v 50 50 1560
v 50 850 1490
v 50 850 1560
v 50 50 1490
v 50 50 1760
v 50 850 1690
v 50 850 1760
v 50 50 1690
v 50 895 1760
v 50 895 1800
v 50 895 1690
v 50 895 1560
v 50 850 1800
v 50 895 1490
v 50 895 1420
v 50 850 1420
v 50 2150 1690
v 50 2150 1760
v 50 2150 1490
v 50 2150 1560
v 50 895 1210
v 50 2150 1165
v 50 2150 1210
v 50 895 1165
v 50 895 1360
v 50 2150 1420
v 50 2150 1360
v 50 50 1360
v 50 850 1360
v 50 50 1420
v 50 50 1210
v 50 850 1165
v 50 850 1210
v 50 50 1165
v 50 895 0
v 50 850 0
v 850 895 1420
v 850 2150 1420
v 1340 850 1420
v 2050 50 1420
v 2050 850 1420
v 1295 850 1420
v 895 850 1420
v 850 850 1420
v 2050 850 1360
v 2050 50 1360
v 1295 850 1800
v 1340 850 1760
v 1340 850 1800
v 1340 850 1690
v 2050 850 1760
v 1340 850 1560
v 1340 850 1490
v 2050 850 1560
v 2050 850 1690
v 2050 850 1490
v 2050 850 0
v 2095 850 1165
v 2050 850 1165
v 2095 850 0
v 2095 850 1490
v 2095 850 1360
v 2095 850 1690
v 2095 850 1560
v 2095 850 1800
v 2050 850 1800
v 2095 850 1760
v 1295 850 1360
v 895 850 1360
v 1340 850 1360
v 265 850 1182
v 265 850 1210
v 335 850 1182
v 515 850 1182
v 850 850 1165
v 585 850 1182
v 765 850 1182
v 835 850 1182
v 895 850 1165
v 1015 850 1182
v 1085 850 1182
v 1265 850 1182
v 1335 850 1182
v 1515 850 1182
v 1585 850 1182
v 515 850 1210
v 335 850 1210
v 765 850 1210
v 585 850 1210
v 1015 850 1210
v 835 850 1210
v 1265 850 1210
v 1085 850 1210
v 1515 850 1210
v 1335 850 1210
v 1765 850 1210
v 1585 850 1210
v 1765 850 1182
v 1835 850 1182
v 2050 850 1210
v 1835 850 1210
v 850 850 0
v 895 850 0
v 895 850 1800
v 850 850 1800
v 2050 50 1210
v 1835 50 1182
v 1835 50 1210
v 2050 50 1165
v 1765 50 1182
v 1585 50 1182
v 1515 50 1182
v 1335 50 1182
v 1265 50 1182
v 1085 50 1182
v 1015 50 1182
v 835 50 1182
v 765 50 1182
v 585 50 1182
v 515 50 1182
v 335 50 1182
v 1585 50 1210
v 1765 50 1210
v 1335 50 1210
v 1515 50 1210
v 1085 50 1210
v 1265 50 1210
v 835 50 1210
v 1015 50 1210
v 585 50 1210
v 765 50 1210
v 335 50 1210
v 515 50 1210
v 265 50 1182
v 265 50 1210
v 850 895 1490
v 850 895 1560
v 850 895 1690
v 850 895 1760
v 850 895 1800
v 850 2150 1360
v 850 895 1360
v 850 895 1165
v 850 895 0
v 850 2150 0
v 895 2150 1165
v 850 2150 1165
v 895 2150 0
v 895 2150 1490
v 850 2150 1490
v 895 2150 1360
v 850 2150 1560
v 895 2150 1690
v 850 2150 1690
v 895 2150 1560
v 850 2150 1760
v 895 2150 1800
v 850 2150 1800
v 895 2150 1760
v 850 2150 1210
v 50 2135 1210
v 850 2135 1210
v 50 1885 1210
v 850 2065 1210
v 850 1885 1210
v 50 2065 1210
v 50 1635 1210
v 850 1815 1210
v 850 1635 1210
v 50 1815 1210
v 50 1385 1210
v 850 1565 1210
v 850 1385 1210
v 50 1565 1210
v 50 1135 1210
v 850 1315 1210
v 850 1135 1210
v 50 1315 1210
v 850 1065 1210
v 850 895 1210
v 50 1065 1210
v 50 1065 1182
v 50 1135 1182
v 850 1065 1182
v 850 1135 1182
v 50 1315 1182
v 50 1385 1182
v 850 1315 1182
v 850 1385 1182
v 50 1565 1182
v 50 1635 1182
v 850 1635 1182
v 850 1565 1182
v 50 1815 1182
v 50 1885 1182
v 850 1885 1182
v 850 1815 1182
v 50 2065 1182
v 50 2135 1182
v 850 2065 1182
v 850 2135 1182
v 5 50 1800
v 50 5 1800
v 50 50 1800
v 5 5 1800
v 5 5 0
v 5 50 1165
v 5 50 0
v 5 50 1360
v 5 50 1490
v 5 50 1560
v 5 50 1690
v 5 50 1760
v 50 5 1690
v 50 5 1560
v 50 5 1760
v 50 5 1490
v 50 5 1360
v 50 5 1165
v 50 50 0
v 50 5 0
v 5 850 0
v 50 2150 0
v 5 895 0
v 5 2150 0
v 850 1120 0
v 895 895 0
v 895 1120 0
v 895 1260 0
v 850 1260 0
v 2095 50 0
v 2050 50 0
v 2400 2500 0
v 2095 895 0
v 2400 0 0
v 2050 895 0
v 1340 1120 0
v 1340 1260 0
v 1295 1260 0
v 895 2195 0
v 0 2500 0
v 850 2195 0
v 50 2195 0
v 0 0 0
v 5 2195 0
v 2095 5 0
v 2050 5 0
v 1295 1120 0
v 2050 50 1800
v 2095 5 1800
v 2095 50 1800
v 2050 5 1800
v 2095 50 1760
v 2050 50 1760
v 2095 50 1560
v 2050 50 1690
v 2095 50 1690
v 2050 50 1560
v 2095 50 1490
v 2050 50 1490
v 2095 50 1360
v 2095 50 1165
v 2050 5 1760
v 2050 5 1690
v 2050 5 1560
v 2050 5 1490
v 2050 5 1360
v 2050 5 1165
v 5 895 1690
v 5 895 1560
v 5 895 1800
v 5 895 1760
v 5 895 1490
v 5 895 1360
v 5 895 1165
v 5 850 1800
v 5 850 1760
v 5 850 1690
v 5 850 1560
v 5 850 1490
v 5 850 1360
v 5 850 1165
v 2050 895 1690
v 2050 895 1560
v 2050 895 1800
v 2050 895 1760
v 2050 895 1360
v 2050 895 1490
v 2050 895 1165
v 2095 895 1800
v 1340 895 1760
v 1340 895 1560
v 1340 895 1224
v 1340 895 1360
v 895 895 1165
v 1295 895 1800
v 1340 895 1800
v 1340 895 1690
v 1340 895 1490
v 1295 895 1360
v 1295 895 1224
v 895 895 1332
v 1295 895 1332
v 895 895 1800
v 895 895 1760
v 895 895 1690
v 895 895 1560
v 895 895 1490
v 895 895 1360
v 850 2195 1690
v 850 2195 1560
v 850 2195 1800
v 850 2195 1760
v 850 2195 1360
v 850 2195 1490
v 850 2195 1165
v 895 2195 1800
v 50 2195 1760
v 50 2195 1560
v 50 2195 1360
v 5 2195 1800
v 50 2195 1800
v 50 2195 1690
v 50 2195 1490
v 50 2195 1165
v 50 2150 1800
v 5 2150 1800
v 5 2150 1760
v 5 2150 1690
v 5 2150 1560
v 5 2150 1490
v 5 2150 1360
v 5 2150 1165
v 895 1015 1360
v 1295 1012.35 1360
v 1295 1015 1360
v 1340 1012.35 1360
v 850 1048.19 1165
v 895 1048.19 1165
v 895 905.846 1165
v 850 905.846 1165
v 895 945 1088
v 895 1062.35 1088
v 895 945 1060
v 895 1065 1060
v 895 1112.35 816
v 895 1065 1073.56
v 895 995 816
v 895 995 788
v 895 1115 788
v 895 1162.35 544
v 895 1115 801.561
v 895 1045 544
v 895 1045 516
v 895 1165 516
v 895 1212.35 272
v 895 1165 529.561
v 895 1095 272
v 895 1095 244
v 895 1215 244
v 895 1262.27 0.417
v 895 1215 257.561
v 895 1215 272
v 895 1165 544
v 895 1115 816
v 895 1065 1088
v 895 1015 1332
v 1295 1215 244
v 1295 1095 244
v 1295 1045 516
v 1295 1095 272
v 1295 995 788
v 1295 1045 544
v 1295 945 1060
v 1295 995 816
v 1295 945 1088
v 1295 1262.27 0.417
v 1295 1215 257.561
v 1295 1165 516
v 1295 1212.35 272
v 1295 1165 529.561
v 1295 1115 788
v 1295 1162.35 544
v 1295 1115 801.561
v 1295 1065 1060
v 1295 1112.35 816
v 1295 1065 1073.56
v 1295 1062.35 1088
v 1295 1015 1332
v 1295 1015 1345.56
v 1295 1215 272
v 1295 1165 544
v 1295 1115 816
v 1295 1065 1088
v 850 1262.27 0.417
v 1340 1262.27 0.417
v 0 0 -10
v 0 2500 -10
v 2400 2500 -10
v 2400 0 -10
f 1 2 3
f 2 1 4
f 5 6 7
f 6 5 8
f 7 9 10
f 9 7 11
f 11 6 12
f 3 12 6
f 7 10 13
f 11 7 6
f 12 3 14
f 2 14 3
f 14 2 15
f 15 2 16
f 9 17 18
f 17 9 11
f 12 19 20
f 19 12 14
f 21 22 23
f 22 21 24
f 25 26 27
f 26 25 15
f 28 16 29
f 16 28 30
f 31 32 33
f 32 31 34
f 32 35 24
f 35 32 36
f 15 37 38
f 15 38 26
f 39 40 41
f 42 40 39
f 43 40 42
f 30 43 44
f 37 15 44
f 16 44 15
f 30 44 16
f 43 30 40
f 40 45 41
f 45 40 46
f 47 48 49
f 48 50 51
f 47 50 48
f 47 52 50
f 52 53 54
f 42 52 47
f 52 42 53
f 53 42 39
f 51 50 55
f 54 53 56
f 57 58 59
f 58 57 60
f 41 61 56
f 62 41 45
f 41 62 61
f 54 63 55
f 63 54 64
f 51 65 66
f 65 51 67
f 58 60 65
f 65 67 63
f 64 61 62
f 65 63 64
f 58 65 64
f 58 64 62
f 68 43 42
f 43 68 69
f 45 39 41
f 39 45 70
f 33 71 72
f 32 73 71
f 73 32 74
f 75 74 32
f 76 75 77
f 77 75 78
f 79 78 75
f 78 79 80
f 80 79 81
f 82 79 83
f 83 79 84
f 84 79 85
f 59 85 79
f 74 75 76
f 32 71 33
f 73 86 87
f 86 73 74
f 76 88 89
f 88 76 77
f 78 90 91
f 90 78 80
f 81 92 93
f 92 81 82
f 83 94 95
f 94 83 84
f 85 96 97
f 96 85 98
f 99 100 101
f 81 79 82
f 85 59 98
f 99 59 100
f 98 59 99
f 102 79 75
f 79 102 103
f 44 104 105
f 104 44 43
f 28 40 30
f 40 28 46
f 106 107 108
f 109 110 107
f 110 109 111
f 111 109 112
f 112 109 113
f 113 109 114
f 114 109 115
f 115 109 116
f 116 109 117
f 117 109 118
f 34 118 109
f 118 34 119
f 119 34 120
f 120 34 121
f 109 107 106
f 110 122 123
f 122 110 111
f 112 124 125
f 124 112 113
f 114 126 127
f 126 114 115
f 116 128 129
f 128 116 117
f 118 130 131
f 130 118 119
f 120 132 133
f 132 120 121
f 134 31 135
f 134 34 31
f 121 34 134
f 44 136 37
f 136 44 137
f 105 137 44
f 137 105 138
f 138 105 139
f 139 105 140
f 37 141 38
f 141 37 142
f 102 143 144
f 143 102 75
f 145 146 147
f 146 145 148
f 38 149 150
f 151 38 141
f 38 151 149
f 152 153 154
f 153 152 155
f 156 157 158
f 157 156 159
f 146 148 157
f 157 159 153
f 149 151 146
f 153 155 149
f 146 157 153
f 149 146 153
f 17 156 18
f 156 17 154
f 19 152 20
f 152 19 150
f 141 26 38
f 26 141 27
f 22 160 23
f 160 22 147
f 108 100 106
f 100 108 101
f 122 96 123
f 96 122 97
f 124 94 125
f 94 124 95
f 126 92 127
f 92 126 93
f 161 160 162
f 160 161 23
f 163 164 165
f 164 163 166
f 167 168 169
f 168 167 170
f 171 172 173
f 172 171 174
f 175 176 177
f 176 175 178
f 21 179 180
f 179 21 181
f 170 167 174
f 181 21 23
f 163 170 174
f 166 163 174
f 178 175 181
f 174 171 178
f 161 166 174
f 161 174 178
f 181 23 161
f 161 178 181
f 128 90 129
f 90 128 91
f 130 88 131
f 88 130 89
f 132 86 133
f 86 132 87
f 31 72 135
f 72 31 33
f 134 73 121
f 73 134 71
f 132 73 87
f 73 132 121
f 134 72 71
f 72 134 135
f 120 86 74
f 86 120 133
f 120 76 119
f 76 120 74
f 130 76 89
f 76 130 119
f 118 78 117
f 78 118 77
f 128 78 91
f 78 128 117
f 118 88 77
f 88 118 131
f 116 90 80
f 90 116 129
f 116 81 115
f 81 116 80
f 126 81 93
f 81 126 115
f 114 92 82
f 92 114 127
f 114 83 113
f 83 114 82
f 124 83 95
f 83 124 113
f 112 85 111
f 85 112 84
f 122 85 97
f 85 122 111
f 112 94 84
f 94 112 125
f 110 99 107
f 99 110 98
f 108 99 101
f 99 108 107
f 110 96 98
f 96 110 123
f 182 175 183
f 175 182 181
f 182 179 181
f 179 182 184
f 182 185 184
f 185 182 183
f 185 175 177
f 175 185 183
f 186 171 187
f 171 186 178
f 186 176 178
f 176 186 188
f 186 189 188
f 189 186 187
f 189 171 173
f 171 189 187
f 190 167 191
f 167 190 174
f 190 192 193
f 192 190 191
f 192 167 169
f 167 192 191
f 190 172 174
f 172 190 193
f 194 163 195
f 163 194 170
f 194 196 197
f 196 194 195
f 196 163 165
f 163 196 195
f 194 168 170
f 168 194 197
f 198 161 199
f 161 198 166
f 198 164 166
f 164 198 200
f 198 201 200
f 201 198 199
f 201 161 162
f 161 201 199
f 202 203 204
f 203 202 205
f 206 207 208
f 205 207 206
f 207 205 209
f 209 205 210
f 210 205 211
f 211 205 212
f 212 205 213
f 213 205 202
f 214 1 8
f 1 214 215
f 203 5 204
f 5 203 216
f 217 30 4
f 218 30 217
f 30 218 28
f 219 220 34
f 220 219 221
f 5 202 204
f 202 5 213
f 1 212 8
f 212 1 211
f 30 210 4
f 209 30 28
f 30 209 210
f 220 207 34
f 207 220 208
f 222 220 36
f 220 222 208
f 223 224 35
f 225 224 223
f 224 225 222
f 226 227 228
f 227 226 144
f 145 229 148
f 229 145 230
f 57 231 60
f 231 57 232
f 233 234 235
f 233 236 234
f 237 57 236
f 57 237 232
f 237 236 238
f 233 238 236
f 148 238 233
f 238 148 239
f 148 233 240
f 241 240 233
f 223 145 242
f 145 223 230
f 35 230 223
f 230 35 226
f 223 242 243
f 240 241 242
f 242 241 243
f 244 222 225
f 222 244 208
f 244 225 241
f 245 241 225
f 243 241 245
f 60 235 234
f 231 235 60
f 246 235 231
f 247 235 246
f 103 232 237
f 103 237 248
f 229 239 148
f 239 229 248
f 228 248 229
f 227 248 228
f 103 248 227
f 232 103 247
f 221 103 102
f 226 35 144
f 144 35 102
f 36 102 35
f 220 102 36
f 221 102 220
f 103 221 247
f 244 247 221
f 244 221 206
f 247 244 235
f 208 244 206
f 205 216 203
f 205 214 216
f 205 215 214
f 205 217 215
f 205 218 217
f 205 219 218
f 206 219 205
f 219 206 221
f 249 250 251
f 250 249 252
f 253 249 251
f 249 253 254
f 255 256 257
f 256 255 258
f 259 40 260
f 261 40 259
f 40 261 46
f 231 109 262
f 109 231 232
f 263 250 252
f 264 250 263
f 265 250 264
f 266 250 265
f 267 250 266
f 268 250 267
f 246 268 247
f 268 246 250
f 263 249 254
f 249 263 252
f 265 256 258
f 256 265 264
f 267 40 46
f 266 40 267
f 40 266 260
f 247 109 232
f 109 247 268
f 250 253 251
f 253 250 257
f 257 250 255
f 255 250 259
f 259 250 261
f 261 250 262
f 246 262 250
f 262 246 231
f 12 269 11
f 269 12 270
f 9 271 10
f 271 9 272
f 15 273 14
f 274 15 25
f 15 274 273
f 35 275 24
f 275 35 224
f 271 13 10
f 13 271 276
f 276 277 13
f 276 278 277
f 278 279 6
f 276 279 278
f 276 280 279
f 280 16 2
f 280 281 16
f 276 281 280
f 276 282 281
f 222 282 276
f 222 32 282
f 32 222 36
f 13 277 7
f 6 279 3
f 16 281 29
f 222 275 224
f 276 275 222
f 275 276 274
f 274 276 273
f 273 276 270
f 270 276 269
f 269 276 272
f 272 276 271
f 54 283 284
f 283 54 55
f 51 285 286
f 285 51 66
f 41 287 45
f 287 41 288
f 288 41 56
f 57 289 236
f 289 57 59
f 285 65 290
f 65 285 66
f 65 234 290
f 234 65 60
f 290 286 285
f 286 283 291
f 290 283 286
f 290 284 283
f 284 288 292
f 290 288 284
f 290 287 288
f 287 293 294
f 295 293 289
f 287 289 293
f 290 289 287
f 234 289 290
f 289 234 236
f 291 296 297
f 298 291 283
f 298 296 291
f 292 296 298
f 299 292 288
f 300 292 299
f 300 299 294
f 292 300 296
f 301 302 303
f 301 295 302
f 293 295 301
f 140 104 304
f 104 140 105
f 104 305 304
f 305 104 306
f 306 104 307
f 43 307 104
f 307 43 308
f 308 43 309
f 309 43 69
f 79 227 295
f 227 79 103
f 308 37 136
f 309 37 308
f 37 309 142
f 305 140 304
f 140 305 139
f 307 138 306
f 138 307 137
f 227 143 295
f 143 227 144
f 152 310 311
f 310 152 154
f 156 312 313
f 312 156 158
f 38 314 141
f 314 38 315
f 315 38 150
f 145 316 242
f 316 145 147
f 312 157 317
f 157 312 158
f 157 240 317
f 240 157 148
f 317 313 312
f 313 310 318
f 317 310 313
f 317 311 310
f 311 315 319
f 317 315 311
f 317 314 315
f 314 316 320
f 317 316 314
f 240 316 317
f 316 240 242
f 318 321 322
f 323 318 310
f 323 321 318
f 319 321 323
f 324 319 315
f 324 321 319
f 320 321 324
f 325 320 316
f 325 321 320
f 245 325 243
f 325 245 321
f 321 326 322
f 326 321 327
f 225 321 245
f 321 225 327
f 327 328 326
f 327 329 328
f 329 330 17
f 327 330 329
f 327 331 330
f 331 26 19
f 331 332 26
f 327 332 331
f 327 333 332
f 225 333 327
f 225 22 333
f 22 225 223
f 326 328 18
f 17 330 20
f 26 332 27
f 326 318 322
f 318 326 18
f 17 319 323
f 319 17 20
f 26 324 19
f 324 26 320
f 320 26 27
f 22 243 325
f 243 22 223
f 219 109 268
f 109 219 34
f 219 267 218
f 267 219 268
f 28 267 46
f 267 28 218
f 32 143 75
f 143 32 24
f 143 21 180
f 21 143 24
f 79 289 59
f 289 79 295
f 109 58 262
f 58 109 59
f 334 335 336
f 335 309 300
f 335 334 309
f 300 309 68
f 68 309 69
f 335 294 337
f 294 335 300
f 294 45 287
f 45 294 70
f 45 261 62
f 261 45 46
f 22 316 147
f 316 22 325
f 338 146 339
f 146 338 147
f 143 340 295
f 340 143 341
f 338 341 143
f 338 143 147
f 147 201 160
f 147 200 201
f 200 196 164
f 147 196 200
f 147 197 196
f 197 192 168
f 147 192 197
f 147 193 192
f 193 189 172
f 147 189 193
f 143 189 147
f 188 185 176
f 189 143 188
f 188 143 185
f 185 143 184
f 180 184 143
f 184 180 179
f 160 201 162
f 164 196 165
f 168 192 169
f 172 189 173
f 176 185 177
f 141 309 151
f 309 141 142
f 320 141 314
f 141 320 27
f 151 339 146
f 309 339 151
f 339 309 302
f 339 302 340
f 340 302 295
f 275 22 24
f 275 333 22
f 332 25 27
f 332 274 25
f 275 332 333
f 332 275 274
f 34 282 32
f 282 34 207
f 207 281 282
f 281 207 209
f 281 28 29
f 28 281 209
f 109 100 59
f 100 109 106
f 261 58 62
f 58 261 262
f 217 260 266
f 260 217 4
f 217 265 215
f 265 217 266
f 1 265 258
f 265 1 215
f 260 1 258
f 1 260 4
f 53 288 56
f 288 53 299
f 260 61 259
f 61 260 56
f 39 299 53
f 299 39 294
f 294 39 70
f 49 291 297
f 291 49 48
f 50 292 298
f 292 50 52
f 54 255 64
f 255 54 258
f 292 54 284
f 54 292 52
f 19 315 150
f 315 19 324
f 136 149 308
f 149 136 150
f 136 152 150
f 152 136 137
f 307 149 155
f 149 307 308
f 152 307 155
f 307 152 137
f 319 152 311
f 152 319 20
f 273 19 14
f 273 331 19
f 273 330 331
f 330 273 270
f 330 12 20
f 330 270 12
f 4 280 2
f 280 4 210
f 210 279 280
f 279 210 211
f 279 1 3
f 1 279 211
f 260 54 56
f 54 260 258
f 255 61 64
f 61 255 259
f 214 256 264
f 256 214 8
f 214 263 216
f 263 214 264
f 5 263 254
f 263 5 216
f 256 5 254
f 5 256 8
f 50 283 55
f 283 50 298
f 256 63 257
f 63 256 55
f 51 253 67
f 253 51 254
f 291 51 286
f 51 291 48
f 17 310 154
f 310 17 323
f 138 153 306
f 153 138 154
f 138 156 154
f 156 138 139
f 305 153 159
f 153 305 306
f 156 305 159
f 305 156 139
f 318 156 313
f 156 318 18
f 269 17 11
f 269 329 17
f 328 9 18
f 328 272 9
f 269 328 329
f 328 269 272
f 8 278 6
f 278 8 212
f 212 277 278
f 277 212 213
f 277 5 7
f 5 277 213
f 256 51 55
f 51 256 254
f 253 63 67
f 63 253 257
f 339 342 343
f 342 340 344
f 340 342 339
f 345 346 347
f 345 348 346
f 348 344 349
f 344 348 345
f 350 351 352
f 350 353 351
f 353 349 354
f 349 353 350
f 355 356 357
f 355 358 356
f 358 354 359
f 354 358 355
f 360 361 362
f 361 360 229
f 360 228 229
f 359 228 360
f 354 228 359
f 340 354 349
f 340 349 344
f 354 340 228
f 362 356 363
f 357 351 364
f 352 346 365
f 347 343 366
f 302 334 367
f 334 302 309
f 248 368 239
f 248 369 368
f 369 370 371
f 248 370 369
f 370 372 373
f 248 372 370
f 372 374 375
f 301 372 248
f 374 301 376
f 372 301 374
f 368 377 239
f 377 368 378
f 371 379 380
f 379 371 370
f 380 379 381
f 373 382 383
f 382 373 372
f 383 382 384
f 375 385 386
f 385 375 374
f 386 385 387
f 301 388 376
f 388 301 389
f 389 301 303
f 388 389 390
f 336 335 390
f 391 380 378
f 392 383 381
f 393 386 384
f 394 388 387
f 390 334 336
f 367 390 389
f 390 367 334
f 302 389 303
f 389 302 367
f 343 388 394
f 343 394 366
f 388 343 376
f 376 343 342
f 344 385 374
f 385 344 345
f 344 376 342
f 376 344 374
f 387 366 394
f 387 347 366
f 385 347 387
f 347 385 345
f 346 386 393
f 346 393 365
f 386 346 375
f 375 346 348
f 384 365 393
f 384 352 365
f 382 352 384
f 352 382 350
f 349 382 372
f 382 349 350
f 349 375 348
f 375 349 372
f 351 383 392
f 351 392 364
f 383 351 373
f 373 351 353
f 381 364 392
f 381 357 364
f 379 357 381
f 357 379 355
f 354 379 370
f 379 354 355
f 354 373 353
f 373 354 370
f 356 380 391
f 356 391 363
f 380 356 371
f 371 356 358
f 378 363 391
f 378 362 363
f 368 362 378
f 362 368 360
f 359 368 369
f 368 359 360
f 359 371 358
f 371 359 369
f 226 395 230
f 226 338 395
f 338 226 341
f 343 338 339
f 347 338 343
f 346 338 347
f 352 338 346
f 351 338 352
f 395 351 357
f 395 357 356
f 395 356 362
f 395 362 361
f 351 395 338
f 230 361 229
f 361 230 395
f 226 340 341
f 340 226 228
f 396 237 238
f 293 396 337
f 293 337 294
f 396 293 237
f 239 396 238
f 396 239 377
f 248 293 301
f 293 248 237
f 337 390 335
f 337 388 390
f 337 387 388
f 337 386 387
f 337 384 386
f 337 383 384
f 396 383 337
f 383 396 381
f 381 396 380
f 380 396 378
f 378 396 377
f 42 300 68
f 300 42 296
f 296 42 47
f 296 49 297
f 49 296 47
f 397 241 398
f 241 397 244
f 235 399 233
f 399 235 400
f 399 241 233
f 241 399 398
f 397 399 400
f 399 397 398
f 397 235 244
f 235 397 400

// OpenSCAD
vst = 45; // vertical support thickness
hst = 45; // horizontal support thickness
bh = 1300; // base height
bhl = 1300; // base height Laura
rh = 1800; // rail height
ew = 400; // entrance width
mid = 60; // mattress insert depth
th = bh+500; // top height

module room_floor() {
    translate([0, 0, -10])
    cube([2400, 2500, 10]);
}

module room_back_wall() {
    cube([0.1, 2500, 2500]);
}

module room_right_wall() {
    cube([2400, 0.1, 2500]);
}

module room_door() {
    translate([1700, 2500, 0]) {
        intersection() {
            cylinder(h = 2000, r1 = 800, r2 = 800);
            rotate([0, 0, 180])
            cube([800, 800, 2000]);
        }
    }
}

module room_window_threshold() {
    translate([2200, 600, 800]) {
        cube([200, 1400, 28]);
    }
}

module vertical_support() {
    cube([vst, vst, th]);
}

module horizontal_support(l) {
    translate([0, 0, mid])
    mirror([0,0,1])
    cube([l, hst, 195]);
}

module rail(l) {
    translate([0, 0, 60])
    mirror([0,0,1])
    cube([l, hst, 70]);
}

module mattress_sara() {
    cube([2000, 800, 120]);
}

module slats_sara() {
    cube([2000, 800, 90]);
}

module slats_support(l) {
    translate([0, -35, -28])
    cube([l, 70, 28]);
}

module mattress_laura() {
    translate([0,-(350+150),0])
    cube([800, 1300+350+150, 120]);
}

module slats_laura() {
    translate([0,-(350+150),0])
    cube([800, 1300+350+150, 90]);
}

module bed() {
    translate([50, 50, 0]) {
        color("black")
        translate([0, 800, bhl])
        cube([800, 5, mid+50]);

        color("white") {
            translate([0, 0, bh]) {
                mattress_sara();
            }

            translate([0, 800, bhl]) {
                mattress_laura();
            }
        }

        color("brown") {
            translate([0, 0, bh-90]) {
                slats_sara();

                for (x=[250, 500, 750, 1000, 1250, 1500, 1750])
                translate([x, 0, 0])
                rotate([0, 0, 90])
                slats_support(800);
            }

            translate([0, 800, bhl-90]) {
                slats_laura();

                rotate([0, 0, 90])
                for (x=[250, 500, 750, 1000, 1250])
                translate([x, -800, 0])
                rotate([0, 0, 90])
                slats_support(800);
            }
        }

        color("brown") { 
            translate([0, 0, 0])
            rotate([0,0,180])
            vertical_support();
            
            translate([2000, 0, 0])
            rotate([0,0,-90])
            vertical_support();
            
            translate([0, 800, 0])
            rotate([0,0,90])
            vertical_support();
            
            translate([2000, 800, 0])
            rotate([0,0,0])
            vertical_support();
            
            translate([800, 800, 0])
            rotate([0,0,0])
            vertical_support();

            translate([800, 800+1300, 0])
            rotate([0,0,0])
            vertical_support();

            translate([0, 800+1300, 0])
            rotate([0,0,90])
            vertical_support();
        }
        
        color("RosyBrown") {
            mirror([0,1,0])
            translate([0, 0, bh])
            horizontal_support(2000);
            
            translate([0, 800, bh])
            horizontal_support(800);

            translate([800+vst, 800, bh])
            horizontal_support(2000-800-vst);

            translate([800, 800+vst, bhl])
            mirror([1,0,0])
            rotate([0,0,90])
            horizontal_support(1300-vst);
            
            translate([0, 800+vst, bhl])
            mirror([0,0,0])
            rotate([0,0,90])
            horizontal_support(1300-vst);
            
            translate([0, 0, bh])
            mirror([0,0,0])
            rotate([0,0,90])
            horizontal_support(800);
            
            translate([2000, 0, bh])
            mirror([1,0,0])
            rotate([0,0,90])
            horizontal_support(800);

            translate([0, 800+1300, bhl])
            mirror([0,0,0])
            rotate([0,0,00])
            horizontal_support(800);
        }

        // extra vertical support at entrance
        translate([800+ew+vst, 800, bh+mid])
        cube([vst, vst, th-bh-mid]);
        
        for (h = [bh+200, bh+400])
        color("Wheat") {
            mirror([0,1,0])
            translate([0, 0, h])
            rail(2000);
            
            *translate([0, 800, h])
            rail(800);
           
            translate([1200+2*vst, 800, h])
            rail(2000-800-vst-ew-vst);

            translate([800, 800+vst, h-(bh-bhl)])
            mirror([1,0,0])
            rotate([0,0,90])
            rail(1300-vst);
            
            translate([0, 800+vst, h-(bh-bhl)])
            mirror([0,0,0])
            rotate([0,0,90])
            rail(1300-vst);
            
            translate([0, 0, h])
            mirror([0,0,0])
            rotate([0,0,90])
            rail(800);
            
            translate([2000, 0, h])
            mirror([1,0,0])
            rotate([0,0,90])
            rail(800);

            translate([0, 800+1300, h-(bh-bhl)])
            mirror([0,0,0])
            rotate([0,0,00])
            rail(800);
        }        

        color("Wheat") {
            render()
            translate([800, 800+vst, 0])
            difference() {
                stairs(
                    top=bh+mid,
                    num_steps=5,
                    step_width=ew,
                    shift_depth=100,
                    step_depth=120,
                    rail_width=140);
                
                translate([0, 0, bh+mid-195])
                cube([vst, bh+mid, 195]);
            }
        }
    }
}

module stairs(
    top,
    num_steps,
    step_width,
    step_depth,
    step_thickness=28,
    shift_width=50 ,
    rail_width=140,
) {
    translate([0, 0, top-step_thickness])
    for (i = [0:num_steps-1]) {
        shift_y = i*shift_width;
        shift_z = i*(top/num_steps);
        
        translate([vst, shift_y, -shift_z])
        cube([step_width, step_depth, step_thickness]);
    }

    angle = atan(shift_width*num_steps/top);
    rl = top/cos(angle) + rail_width*sin(angle);

    render()
    intersection() {
        translate([0, -25, top])
        rotate([angle, 0, 0])
        translate([0, 0, -rl]) {
            translate([0, 0, 0])
            cube([vst, rail_width, rl]);
    
            translate([vst+step_width, 0, 0])
            cube([vst, rail_width, rl]);
        };
        
        cube([1000, 1000, top]);
    }
}

color("blue") {
    *room_right_wall();
    *room_back_wall();
    room_floor();
    *room_window_threshold();
}

color("blue", 1) {
    *room_door();
}

bed();
        
